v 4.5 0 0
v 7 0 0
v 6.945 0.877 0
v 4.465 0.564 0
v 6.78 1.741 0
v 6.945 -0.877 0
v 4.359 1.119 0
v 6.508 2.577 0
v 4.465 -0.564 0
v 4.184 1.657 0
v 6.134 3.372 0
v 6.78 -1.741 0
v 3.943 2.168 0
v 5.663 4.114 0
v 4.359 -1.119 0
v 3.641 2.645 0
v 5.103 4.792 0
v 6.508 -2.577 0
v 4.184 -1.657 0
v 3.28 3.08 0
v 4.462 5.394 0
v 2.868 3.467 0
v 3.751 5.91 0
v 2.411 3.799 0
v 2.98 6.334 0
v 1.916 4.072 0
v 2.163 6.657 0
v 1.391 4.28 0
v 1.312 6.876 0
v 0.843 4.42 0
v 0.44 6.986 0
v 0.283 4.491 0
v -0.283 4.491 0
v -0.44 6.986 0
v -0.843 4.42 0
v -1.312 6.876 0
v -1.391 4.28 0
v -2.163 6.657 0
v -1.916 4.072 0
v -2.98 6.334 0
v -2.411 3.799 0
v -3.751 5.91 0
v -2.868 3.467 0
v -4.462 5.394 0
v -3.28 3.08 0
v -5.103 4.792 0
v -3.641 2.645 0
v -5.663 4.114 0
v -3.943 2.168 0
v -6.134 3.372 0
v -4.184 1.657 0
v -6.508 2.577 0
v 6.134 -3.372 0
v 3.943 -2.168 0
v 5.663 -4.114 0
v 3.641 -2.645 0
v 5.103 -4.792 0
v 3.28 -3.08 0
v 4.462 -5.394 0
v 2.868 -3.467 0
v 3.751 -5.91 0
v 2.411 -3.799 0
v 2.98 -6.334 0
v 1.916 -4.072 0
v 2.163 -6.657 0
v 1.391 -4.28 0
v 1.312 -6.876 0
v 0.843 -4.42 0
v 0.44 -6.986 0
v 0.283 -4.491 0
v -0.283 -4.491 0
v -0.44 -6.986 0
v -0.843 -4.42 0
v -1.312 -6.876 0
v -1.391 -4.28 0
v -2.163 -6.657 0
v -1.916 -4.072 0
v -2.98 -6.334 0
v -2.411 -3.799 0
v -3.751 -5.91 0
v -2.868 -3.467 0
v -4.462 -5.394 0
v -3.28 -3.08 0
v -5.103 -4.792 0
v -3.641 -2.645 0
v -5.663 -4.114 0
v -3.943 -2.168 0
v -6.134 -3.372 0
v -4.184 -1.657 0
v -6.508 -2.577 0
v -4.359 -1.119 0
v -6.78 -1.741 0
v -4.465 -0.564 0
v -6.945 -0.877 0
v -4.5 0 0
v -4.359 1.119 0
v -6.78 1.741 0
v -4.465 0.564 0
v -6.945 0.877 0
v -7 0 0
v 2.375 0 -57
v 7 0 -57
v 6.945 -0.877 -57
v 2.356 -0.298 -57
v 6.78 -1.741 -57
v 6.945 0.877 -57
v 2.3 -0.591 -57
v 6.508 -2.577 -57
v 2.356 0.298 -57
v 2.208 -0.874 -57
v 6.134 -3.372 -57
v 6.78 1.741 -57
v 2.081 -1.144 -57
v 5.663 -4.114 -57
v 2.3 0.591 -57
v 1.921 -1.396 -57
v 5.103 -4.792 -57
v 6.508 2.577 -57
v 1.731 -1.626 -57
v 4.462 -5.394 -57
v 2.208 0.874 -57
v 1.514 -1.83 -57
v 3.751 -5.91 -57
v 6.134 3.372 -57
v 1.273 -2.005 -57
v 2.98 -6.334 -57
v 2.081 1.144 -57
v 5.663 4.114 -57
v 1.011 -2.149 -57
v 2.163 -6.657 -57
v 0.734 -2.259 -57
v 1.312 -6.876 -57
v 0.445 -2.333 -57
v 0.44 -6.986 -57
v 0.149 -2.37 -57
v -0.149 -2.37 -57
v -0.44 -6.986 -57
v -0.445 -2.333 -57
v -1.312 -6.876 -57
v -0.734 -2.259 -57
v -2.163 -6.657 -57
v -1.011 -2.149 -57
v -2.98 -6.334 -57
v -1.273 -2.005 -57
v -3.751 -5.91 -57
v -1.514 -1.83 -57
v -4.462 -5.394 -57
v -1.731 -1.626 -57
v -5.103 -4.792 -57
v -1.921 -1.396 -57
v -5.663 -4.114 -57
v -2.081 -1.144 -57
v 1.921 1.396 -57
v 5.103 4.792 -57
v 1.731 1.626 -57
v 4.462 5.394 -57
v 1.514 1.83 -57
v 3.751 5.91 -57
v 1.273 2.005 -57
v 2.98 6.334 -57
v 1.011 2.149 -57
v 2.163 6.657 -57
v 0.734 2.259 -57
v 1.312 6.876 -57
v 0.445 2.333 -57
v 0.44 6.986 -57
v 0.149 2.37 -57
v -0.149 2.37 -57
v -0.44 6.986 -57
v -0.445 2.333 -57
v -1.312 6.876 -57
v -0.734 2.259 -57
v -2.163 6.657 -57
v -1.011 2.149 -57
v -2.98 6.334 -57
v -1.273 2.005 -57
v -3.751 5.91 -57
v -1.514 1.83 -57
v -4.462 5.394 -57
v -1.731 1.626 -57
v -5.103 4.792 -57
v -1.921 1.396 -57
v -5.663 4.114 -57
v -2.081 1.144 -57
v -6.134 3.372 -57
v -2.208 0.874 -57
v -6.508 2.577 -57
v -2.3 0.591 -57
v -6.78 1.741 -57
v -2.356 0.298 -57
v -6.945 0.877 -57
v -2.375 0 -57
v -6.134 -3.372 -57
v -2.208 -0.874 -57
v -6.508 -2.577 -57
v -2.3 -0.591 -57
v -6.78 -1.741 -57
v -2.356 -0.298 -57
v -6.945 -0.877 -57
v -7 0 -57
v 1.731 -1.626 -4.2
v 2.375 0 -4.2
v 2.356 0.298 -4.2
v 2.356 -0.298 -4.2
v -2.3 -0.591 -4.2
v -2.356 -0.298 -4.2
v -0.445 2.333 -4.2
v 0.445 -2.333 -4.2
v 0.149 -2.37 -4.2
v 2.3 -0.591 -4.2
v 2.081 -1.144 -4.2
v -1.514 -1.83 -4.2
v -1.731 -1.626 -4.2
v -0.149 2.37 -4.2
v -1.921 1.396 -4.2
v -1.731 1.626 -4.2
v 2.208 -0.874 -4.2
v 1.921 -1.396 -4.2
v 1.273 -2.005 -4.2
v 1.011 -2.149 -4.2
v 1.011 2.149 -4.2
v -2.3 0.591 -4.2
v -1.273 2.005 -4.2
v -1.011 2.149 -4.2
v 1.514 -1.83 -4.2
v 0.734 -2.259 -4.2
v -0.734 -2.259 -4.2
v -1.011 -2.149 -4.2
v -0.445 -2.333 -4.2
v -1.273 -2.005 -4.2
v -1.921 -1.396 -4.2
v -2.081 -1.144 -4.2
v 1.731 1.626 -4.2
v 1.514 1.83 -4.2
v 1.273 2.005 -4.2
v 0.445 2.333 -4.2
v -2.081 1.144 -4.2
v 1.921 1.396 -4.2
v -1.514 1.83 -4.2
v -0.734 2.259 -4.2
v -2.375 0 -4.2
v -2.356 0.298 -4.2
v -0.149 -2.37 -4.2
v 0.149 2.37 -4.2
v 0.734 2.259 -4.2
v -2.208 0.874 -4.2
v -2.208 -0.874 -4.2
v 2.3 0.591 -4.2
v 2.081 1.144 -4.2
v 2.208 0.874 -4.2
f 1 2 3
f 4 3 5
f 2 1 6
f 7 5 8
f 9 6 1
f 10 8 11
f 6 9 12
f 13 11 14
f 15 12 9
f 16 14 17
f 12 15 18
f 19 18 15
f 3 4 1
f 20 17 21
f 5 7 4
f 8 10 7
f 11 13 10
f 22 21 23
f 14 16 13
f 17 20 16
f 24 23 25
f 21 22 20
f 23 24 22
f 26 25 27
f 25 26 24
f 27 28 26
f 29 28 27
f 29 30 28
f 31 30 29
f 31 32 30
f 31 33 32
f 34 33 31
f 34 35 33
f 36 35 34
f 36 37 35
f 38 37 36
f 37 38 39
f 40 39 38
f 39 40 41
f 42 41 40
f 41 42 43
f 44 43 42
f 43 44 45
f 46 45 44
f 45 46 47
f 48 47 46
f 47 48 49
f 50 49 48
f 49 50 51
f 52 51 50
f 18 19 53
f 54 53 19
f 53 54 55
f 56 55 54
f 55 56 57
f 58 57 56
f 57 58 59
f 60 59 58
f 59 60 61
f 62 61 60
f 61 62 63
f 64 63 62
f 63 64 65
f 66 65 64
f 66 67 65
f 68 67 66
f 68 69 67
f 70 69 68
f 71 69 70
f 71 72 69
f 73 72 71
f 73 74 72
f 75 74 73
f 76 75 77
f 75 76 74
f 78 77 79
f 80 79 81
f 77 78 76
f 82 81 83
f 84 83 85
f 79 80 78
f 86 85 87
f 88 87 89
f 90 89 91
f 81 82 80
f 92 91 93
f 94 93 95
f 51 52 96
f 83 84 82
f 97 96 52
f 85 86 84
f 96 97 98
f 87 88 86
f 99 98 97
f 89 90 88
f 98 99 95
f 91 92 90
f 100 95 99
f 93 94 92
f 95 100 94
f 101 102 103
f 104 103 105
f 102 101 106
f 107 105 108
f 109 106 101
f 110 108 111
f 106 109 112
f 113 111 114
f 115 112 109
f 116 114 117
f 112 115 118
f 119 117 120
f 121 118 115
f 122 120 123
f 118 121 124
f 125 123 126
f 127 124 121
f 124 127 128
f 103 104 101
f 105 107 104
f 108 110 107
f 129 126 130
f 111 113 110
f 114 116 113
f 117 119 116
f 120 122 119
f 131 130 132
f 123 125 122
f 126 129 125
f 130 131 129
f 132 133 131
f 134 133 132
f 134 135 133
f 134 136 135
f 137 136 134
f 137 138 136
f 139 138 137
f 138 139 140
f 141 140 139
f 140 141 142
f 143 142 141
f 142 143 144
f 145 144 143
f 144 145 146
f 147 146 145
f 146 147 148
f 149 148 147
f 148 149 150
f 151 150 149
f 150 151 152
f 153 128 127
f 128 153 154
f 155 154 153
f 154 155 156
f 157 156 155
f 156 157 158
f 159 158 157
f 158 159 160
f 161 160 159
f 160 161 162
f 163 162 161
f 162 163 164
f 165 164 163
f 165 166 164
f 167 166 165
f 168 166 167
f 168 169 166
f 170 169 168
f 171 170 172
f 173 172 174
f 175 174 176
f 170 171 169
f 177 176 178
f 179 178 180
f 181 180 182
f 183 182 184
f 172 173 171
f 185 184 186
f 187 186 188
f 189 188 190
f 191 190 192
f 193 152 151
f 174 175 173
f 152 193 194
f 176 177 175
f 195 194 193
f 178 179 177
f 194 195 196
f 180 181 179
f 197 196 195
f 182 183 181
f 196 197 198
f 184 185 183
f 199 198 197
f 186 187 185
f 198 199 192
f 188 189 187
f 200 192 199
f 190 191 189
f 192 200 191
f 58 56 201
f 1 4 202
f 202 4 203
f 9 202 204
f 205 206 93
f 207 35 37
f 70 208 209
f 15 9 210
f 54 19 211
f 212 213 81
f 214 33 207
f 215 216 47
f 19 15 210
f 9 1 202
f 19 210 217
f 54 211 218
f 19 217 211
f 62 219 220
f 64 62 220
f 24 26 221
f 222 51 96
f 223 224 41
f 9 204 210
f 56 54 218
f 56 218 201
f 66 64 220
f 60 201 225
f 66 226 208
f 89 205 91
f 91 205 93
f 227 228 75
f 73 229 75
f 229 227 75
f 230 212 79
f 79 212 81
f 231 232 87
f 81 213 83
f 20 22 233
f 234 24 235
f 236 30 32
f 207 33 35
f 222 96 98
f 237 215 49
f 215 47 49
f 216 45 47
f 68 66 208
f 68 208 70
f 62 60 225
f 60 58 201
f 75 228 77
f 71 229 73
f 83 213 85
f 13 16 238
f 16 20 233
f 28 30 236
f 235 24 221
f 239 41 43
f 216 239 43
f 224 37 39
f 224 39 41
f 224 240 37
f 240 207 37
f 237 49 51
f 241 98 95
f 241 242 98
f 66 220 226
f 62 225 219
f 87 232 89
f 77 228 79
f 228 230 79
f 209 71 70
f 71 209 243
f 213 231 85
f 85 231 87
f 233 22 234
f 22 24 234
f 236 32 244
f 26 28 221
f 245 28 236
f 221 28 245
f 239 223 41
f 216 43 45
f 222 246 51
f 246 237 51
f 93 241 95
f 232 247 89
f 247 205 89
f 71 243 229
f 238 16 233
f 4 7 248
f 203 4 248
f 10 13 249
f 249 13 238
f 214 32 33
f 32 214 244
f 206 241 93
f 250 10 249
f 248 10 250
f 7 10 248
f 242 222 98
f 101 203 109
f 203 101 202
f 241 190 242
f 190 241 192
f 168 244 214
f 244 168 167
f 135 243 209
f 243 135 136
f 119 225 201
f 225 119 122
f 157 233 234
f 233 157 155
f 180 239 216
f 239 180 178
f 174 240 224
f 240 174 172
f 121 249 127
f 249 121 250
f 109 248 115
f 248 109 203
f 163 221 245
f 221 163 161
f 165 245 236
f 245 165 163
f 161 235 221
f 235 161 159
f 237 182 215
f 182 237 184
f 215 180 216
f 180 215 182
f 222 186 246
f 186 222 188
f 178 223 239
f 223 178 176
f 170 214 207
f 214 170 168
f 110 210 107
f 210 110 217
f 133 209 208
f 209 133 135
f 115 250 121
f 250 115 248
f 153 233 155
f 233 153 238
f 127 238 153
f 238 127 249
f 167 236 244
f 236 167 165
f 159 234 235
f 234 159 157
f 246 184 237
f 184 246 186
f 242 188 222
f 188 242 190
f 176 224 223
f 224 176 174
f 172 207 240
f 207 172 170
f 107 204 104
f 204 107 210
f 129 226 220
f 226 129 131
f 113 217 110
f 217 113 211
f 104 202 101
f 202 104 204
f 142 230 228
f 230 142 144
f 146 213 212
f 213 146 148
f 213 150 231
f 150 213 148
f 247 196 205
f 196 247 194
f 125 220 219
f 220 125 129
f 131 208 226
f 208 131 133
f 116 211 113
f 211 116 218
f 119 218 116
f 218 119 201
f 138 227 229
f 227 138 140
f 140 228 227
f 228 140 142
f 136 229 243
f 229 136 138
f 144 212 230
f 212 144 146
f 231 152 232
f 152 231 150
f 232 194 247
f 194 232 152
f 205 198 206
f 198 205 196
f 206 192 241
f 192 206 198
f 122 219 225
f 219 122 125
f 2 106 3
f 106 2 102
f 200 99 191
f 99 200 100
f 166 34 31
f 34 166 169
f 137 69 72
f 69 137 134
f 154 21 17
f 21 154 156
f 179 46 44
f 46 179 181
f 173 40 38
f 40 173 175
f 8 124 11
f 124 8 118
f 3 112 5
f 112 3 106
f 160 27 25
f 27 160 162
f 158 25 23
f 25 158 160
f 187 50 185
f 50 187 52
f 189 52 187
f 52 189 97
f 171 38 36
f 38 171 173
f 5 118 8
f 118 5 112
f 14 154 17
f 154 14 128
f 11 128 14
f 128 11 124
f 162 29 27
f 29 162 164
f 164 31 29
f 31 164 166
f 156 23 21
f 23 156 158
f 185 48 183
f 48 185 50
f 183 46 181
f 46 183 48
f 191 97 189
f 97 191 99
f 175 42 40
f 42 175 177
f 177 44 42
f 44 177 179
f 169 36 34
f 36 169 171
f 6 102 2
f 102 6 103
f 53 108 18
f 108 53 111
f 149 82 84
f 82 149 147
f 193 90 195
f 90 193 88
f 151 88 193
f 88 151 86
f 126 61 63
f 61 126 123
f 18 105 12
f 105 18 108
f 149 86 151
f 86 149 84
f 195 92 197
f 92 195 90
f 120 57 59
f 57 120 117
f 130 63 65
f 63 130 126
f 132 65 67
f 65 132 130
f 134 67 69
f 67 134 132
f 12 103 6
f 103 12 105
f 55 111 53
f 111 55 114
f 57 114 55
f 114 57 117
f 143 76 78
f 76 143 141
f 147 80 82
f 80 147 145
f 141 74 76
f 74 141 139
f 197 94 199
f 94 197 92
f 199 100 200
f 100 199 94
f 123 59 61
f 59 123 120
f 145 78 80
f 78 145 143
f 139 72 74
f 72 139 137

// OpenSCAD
$fn = 50;


difference() {
	union() {
		translate(v = [0, 0, -57.0000000000]) {
			cylinder(h = 57, r = 7.0000000000);
		}
		cylinder(h = 0, r = 13.0000000000);
	}
	union() {
		translate(v = [0, 0, 0]) {
			rotate(a = [0, 0, 0]) {
				difference() {
					union() {
						#translate(v = [0, 0, -57.0000000000]) {
							cylinder(h = 57, r = 2.2500000000);
						}
						#translate(v = [0, 0, -4.2000000000]) {
							cylinder(h = 4.2000000000, r1 = 2.3750000000, r2 = 4.5000000000);
						}
						#translate(v = [0, 0, -57.0000000000]) {
							cylinder(h = 57, r = 2.3750000000);
						}
						#translate(v = [0, 0, -57.0000000000]) {
							cylinder(h = 57, r = 2.2500000000);
						}
					}
					union();
				}
			}
		}
	}
}
